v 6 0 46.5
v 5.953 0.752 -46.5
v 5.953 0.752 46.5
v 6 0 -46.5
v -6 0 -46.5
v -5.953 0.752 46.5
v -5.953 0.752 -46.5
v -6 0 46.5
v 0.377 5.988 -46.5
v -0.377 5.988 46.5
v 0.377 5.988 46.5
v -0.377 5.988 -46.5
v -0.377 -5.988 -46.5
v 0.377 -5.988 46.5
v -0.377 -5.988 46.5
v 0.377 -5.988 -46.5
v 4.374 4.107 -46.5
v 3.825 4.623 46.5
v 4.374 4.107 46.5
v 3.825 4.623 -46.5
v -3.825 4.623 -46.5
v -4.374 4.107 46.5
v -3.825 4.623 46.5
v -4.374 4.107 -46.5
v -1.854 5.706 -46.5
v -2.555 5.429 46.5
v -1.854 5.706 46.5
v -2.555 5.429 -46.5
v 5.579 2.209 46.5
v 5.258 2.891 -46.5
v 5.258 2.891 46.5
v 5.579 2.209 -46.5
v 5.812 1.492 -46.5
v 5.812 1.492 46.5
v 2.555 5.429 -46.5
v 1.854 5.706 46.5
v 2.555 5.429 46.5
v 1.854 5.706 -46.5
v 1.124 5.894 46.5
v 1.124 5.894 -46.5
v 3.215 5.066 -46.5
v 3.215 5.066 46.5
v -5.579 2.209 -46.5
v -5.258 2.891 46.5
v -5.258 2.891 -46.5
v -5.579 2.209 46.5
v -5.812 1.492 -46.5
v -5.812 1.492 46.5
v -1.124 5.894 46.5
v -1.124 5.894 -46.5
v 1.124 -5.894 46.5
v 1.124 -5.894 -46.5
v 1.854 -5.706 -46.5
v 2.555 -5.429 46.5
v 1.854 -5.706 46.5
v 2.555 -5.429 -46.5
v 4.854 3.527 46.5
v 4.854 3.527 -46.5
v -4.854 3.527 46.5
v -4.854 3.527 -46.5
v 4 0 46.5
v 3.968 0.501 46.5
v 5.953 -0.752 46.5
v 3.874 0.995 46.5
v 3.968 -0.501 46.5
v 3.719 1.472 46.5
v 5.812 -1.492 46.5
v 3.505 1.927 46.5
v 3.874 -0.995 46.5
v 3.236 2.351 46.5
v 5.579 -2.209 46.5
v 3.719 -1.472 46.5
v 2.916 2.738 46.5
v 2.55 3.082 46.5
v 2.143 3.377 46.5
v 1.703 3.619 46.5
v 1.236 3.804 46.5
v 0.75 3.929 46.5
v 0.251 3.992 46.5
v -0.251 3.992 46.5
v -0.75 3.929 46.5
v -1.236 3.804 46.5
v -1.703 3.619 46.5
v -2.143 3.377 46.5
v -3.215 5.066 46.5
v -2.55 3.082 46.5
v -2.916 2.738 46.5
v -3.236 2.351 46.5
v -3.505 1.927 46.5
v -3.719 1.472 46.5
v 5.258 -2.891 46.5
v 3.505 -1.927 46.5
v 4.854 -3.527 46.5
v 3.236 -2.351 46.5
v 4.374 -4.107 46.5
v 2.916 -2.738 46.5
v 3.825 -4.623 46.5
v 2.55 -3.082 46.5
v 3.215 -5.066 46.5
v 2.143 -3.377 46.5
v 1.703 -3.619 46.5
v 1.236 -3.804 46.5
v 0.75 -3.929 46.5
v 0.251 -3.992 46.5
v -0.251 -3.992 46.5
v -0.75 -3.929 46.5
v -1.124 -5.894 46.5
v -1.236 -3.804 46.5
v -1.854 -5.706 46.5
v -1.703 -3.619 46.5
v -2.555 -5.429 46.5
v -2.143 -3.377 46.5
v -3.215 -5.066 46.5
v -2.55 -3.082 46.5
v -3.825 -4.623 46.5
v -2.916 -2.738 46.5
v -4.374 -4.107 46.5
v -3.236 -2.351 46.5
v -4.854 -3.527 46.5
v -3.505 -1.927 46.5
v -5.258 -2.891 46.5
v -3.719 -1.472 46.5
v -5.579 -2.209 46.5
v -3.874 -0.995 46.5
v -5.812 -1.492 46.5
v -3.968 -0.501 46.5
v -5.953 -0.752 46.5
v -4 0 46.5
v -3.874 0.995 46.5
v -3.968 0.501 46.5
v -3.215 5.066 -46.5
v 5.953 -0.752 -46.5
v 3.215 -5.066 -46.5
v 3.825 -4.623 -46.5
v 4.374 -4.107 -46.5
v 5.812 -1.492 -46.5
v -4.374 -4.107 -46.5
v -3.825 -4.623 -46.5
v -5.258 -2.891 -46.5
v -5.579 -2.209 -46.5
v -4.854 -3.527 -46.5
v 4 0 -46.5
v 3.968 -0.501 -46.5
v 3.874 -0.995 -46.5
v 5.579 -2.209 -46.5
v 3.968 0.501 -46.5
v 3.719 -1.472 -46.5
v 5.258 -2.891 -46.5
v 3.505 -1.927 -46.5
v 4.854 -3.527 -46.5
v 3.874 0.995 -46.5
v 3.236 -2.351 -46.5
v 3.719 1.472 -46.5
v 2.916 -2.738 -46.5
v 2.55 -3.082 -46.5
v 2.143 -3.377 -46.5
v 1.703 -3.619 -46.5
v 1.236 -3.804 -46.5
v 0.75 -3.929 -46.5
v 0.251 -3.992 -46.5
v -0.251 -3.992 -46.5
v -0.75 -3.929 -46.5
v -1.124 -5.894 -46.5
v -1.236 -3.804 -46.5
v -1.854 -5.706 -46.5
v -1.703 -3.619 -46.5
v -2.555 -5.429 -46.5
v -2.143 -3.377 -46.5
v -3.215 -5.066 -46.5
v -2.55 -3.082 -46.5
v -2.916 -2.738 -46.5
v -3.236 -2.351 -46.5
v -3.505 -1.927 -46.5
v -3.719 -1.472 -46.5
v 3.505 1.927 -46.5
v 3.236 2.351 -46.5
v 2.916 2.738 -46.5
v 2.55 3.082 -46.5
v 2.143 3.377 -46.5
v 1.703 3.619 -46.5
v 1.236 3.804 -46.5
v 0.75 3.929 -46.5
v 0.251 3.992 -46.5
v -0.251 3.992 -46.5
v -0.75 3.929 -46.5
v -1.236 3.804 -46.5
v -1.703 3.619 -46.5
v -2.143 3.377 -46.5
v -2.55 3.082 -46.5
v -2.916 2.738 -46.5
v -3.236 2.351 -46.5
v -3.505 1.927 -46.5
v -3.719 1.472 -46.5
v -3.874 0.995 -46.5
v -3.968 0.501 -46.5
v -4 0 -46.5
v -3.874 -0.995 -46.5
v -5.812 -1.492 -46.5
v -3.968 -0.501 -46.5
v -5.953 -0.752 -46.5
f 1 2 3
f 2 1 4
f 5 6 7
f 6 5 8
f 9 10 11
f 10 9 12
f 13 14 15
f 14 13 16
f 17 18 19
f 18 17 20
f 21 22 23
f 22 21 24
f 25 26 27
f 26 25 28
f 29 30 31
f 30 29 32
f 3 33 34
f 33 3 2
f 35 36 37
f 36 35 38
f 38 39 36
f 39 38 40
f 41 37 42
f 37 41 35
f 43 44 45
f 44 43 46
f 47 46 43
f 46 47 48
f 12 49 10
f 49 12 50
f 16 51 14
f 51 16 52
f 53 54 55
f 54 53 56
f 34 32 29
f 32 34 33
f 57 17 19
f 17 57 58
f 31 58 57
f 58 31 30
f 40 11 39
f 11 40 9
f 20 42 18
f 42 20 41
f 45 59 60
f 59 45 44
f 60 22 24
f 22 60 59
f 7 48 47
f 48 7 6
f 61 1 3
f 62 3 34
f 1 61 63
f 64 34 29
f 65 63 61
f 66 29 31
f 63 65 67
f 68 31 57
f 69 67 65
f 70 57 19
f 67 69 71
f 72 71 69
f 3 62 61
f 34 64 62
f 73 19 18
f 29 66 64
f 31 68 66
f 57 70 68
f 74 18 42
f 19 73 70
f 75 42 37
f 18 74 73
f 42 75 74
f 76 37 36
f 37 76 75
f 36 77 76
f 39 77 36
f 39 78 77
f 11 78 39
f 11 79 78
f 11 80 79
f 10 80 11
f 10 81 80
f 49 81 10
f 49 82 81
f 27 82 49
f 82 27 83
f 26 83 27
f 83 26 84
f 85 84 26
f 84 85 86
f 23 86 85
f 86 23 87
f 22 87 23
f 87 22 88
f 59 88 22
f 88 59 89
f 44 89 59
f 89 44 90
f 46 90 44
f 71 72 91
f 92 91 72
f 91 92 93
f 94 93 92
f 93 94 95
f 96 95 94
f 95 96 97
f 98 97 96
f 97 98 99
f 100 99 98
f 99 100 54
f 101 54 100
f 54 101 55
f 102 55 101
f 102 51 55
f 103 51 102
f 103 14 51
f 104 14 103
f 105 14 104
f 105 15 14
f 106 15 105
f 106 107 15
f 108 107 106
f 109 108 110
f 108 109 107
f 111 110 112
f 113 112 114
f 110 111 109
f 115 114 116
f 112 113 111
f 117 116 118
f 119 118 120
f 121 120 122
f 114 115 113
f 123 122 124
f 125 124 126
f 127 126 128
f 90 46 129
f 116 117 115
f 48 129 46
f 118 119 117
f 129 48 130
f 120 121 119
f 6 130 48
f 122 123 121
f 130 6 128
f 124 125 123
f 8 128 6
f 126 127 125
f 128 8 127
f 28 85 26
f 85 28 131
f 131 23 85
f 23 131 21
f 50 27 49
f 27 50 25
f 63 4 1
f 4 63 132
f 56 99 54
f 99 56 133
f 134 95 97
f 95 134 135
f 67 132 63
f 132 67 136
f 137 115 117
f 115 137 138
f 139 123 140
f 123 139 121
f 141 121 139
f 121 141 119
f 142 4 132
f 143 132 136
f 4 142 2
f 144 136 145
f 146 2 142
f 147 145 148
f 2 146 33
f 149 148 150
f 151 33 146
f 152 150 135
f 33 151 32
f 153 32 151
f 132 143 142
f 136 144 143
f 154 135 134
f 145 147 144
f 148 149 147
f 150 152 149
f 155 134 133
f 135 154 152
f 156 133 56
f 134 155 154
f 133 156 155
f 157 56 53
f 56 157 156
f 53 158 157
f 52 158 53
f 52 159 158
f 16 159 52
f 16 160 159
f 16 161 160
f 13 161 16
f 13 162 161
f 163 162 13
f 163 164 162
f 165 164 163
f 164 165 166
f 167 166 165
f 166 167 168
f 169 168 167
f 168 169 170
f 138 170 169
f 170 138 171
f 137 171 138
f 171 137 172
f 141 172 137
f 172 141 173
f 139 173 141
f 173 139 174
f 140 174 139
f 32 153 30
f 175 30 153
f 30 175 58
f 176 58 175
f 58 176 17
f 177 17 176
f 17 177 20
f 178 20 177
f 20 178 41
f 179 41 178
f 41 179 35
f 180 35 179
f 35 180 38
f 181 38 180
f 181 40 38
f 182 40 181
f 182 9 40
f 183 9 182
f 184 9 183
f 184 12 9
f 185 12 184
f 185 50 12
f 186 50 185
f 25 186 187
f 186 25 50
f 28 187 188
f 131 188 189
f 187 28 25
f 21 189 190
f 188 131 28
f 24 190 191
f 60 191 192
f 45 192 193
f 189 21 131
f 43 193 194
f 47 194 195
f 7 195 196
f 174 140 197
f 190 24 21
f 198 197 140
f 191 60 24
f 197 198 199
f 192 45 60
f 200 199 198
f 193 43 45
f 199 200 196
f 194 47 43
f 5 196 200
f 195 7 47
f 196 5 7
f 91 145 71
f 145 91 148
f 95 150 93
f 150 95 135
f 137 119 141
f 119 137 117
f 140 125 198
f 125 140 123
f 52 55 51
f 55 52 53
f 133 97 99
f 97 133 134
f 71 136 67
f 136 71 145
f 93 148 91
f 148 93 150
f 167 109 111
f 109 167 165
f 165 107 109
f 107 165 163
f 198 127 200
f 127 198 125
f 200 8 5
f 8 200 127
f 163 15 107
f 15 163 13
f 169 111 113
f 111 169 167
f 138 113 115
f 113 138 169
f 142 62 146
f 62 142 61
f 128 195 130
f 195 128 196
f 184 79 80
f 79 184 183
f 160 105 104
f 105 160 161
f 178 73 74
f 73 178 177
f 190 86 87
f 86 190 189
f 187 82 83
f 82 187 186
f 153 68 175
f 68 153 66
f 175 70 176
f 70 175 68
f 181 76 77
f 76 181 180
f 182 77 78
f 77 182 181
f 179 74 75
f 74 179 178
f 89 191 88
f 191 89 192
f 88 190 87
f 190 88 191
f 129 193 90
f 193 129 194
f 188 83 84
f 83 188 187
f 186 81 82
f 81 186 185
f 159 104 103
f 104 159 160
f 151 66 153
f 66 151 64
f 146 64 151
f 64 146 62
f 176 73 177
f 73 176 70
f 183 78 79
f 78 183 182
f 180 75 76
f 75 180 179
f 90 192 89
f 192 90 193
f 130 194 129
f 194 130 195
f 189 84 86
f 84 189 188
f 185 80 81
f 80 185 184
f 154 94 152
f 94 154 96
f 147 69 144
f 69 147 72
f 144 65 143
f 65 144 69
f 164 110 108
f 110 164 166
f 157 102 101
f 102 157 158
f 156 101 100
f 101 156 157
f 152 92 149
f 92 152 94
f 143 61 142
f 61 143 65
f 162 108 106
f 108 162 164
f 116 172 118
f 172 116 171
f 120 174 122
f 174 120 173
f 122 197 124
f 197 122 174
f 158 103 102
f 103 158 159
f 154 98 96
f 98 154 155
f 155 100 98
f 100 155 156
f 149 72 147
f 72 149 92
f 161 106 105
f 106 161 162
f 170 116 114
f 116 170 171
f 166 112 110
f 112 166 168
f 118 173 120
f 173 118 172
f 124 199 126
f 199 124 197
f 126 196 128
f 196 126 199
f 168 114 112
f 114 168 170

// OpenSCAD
$fn = 50;


difference() {
	union() {
		translate(v = [0, 0, -46.5000000000]) {
			cylinder(h = 93, r = 6.0000000000);
		}
	}
	union() {
		translate(v = [0, 0, -100.0000000000]) {
			cylinder(h = 200, r = 4);
		}
	}
}
